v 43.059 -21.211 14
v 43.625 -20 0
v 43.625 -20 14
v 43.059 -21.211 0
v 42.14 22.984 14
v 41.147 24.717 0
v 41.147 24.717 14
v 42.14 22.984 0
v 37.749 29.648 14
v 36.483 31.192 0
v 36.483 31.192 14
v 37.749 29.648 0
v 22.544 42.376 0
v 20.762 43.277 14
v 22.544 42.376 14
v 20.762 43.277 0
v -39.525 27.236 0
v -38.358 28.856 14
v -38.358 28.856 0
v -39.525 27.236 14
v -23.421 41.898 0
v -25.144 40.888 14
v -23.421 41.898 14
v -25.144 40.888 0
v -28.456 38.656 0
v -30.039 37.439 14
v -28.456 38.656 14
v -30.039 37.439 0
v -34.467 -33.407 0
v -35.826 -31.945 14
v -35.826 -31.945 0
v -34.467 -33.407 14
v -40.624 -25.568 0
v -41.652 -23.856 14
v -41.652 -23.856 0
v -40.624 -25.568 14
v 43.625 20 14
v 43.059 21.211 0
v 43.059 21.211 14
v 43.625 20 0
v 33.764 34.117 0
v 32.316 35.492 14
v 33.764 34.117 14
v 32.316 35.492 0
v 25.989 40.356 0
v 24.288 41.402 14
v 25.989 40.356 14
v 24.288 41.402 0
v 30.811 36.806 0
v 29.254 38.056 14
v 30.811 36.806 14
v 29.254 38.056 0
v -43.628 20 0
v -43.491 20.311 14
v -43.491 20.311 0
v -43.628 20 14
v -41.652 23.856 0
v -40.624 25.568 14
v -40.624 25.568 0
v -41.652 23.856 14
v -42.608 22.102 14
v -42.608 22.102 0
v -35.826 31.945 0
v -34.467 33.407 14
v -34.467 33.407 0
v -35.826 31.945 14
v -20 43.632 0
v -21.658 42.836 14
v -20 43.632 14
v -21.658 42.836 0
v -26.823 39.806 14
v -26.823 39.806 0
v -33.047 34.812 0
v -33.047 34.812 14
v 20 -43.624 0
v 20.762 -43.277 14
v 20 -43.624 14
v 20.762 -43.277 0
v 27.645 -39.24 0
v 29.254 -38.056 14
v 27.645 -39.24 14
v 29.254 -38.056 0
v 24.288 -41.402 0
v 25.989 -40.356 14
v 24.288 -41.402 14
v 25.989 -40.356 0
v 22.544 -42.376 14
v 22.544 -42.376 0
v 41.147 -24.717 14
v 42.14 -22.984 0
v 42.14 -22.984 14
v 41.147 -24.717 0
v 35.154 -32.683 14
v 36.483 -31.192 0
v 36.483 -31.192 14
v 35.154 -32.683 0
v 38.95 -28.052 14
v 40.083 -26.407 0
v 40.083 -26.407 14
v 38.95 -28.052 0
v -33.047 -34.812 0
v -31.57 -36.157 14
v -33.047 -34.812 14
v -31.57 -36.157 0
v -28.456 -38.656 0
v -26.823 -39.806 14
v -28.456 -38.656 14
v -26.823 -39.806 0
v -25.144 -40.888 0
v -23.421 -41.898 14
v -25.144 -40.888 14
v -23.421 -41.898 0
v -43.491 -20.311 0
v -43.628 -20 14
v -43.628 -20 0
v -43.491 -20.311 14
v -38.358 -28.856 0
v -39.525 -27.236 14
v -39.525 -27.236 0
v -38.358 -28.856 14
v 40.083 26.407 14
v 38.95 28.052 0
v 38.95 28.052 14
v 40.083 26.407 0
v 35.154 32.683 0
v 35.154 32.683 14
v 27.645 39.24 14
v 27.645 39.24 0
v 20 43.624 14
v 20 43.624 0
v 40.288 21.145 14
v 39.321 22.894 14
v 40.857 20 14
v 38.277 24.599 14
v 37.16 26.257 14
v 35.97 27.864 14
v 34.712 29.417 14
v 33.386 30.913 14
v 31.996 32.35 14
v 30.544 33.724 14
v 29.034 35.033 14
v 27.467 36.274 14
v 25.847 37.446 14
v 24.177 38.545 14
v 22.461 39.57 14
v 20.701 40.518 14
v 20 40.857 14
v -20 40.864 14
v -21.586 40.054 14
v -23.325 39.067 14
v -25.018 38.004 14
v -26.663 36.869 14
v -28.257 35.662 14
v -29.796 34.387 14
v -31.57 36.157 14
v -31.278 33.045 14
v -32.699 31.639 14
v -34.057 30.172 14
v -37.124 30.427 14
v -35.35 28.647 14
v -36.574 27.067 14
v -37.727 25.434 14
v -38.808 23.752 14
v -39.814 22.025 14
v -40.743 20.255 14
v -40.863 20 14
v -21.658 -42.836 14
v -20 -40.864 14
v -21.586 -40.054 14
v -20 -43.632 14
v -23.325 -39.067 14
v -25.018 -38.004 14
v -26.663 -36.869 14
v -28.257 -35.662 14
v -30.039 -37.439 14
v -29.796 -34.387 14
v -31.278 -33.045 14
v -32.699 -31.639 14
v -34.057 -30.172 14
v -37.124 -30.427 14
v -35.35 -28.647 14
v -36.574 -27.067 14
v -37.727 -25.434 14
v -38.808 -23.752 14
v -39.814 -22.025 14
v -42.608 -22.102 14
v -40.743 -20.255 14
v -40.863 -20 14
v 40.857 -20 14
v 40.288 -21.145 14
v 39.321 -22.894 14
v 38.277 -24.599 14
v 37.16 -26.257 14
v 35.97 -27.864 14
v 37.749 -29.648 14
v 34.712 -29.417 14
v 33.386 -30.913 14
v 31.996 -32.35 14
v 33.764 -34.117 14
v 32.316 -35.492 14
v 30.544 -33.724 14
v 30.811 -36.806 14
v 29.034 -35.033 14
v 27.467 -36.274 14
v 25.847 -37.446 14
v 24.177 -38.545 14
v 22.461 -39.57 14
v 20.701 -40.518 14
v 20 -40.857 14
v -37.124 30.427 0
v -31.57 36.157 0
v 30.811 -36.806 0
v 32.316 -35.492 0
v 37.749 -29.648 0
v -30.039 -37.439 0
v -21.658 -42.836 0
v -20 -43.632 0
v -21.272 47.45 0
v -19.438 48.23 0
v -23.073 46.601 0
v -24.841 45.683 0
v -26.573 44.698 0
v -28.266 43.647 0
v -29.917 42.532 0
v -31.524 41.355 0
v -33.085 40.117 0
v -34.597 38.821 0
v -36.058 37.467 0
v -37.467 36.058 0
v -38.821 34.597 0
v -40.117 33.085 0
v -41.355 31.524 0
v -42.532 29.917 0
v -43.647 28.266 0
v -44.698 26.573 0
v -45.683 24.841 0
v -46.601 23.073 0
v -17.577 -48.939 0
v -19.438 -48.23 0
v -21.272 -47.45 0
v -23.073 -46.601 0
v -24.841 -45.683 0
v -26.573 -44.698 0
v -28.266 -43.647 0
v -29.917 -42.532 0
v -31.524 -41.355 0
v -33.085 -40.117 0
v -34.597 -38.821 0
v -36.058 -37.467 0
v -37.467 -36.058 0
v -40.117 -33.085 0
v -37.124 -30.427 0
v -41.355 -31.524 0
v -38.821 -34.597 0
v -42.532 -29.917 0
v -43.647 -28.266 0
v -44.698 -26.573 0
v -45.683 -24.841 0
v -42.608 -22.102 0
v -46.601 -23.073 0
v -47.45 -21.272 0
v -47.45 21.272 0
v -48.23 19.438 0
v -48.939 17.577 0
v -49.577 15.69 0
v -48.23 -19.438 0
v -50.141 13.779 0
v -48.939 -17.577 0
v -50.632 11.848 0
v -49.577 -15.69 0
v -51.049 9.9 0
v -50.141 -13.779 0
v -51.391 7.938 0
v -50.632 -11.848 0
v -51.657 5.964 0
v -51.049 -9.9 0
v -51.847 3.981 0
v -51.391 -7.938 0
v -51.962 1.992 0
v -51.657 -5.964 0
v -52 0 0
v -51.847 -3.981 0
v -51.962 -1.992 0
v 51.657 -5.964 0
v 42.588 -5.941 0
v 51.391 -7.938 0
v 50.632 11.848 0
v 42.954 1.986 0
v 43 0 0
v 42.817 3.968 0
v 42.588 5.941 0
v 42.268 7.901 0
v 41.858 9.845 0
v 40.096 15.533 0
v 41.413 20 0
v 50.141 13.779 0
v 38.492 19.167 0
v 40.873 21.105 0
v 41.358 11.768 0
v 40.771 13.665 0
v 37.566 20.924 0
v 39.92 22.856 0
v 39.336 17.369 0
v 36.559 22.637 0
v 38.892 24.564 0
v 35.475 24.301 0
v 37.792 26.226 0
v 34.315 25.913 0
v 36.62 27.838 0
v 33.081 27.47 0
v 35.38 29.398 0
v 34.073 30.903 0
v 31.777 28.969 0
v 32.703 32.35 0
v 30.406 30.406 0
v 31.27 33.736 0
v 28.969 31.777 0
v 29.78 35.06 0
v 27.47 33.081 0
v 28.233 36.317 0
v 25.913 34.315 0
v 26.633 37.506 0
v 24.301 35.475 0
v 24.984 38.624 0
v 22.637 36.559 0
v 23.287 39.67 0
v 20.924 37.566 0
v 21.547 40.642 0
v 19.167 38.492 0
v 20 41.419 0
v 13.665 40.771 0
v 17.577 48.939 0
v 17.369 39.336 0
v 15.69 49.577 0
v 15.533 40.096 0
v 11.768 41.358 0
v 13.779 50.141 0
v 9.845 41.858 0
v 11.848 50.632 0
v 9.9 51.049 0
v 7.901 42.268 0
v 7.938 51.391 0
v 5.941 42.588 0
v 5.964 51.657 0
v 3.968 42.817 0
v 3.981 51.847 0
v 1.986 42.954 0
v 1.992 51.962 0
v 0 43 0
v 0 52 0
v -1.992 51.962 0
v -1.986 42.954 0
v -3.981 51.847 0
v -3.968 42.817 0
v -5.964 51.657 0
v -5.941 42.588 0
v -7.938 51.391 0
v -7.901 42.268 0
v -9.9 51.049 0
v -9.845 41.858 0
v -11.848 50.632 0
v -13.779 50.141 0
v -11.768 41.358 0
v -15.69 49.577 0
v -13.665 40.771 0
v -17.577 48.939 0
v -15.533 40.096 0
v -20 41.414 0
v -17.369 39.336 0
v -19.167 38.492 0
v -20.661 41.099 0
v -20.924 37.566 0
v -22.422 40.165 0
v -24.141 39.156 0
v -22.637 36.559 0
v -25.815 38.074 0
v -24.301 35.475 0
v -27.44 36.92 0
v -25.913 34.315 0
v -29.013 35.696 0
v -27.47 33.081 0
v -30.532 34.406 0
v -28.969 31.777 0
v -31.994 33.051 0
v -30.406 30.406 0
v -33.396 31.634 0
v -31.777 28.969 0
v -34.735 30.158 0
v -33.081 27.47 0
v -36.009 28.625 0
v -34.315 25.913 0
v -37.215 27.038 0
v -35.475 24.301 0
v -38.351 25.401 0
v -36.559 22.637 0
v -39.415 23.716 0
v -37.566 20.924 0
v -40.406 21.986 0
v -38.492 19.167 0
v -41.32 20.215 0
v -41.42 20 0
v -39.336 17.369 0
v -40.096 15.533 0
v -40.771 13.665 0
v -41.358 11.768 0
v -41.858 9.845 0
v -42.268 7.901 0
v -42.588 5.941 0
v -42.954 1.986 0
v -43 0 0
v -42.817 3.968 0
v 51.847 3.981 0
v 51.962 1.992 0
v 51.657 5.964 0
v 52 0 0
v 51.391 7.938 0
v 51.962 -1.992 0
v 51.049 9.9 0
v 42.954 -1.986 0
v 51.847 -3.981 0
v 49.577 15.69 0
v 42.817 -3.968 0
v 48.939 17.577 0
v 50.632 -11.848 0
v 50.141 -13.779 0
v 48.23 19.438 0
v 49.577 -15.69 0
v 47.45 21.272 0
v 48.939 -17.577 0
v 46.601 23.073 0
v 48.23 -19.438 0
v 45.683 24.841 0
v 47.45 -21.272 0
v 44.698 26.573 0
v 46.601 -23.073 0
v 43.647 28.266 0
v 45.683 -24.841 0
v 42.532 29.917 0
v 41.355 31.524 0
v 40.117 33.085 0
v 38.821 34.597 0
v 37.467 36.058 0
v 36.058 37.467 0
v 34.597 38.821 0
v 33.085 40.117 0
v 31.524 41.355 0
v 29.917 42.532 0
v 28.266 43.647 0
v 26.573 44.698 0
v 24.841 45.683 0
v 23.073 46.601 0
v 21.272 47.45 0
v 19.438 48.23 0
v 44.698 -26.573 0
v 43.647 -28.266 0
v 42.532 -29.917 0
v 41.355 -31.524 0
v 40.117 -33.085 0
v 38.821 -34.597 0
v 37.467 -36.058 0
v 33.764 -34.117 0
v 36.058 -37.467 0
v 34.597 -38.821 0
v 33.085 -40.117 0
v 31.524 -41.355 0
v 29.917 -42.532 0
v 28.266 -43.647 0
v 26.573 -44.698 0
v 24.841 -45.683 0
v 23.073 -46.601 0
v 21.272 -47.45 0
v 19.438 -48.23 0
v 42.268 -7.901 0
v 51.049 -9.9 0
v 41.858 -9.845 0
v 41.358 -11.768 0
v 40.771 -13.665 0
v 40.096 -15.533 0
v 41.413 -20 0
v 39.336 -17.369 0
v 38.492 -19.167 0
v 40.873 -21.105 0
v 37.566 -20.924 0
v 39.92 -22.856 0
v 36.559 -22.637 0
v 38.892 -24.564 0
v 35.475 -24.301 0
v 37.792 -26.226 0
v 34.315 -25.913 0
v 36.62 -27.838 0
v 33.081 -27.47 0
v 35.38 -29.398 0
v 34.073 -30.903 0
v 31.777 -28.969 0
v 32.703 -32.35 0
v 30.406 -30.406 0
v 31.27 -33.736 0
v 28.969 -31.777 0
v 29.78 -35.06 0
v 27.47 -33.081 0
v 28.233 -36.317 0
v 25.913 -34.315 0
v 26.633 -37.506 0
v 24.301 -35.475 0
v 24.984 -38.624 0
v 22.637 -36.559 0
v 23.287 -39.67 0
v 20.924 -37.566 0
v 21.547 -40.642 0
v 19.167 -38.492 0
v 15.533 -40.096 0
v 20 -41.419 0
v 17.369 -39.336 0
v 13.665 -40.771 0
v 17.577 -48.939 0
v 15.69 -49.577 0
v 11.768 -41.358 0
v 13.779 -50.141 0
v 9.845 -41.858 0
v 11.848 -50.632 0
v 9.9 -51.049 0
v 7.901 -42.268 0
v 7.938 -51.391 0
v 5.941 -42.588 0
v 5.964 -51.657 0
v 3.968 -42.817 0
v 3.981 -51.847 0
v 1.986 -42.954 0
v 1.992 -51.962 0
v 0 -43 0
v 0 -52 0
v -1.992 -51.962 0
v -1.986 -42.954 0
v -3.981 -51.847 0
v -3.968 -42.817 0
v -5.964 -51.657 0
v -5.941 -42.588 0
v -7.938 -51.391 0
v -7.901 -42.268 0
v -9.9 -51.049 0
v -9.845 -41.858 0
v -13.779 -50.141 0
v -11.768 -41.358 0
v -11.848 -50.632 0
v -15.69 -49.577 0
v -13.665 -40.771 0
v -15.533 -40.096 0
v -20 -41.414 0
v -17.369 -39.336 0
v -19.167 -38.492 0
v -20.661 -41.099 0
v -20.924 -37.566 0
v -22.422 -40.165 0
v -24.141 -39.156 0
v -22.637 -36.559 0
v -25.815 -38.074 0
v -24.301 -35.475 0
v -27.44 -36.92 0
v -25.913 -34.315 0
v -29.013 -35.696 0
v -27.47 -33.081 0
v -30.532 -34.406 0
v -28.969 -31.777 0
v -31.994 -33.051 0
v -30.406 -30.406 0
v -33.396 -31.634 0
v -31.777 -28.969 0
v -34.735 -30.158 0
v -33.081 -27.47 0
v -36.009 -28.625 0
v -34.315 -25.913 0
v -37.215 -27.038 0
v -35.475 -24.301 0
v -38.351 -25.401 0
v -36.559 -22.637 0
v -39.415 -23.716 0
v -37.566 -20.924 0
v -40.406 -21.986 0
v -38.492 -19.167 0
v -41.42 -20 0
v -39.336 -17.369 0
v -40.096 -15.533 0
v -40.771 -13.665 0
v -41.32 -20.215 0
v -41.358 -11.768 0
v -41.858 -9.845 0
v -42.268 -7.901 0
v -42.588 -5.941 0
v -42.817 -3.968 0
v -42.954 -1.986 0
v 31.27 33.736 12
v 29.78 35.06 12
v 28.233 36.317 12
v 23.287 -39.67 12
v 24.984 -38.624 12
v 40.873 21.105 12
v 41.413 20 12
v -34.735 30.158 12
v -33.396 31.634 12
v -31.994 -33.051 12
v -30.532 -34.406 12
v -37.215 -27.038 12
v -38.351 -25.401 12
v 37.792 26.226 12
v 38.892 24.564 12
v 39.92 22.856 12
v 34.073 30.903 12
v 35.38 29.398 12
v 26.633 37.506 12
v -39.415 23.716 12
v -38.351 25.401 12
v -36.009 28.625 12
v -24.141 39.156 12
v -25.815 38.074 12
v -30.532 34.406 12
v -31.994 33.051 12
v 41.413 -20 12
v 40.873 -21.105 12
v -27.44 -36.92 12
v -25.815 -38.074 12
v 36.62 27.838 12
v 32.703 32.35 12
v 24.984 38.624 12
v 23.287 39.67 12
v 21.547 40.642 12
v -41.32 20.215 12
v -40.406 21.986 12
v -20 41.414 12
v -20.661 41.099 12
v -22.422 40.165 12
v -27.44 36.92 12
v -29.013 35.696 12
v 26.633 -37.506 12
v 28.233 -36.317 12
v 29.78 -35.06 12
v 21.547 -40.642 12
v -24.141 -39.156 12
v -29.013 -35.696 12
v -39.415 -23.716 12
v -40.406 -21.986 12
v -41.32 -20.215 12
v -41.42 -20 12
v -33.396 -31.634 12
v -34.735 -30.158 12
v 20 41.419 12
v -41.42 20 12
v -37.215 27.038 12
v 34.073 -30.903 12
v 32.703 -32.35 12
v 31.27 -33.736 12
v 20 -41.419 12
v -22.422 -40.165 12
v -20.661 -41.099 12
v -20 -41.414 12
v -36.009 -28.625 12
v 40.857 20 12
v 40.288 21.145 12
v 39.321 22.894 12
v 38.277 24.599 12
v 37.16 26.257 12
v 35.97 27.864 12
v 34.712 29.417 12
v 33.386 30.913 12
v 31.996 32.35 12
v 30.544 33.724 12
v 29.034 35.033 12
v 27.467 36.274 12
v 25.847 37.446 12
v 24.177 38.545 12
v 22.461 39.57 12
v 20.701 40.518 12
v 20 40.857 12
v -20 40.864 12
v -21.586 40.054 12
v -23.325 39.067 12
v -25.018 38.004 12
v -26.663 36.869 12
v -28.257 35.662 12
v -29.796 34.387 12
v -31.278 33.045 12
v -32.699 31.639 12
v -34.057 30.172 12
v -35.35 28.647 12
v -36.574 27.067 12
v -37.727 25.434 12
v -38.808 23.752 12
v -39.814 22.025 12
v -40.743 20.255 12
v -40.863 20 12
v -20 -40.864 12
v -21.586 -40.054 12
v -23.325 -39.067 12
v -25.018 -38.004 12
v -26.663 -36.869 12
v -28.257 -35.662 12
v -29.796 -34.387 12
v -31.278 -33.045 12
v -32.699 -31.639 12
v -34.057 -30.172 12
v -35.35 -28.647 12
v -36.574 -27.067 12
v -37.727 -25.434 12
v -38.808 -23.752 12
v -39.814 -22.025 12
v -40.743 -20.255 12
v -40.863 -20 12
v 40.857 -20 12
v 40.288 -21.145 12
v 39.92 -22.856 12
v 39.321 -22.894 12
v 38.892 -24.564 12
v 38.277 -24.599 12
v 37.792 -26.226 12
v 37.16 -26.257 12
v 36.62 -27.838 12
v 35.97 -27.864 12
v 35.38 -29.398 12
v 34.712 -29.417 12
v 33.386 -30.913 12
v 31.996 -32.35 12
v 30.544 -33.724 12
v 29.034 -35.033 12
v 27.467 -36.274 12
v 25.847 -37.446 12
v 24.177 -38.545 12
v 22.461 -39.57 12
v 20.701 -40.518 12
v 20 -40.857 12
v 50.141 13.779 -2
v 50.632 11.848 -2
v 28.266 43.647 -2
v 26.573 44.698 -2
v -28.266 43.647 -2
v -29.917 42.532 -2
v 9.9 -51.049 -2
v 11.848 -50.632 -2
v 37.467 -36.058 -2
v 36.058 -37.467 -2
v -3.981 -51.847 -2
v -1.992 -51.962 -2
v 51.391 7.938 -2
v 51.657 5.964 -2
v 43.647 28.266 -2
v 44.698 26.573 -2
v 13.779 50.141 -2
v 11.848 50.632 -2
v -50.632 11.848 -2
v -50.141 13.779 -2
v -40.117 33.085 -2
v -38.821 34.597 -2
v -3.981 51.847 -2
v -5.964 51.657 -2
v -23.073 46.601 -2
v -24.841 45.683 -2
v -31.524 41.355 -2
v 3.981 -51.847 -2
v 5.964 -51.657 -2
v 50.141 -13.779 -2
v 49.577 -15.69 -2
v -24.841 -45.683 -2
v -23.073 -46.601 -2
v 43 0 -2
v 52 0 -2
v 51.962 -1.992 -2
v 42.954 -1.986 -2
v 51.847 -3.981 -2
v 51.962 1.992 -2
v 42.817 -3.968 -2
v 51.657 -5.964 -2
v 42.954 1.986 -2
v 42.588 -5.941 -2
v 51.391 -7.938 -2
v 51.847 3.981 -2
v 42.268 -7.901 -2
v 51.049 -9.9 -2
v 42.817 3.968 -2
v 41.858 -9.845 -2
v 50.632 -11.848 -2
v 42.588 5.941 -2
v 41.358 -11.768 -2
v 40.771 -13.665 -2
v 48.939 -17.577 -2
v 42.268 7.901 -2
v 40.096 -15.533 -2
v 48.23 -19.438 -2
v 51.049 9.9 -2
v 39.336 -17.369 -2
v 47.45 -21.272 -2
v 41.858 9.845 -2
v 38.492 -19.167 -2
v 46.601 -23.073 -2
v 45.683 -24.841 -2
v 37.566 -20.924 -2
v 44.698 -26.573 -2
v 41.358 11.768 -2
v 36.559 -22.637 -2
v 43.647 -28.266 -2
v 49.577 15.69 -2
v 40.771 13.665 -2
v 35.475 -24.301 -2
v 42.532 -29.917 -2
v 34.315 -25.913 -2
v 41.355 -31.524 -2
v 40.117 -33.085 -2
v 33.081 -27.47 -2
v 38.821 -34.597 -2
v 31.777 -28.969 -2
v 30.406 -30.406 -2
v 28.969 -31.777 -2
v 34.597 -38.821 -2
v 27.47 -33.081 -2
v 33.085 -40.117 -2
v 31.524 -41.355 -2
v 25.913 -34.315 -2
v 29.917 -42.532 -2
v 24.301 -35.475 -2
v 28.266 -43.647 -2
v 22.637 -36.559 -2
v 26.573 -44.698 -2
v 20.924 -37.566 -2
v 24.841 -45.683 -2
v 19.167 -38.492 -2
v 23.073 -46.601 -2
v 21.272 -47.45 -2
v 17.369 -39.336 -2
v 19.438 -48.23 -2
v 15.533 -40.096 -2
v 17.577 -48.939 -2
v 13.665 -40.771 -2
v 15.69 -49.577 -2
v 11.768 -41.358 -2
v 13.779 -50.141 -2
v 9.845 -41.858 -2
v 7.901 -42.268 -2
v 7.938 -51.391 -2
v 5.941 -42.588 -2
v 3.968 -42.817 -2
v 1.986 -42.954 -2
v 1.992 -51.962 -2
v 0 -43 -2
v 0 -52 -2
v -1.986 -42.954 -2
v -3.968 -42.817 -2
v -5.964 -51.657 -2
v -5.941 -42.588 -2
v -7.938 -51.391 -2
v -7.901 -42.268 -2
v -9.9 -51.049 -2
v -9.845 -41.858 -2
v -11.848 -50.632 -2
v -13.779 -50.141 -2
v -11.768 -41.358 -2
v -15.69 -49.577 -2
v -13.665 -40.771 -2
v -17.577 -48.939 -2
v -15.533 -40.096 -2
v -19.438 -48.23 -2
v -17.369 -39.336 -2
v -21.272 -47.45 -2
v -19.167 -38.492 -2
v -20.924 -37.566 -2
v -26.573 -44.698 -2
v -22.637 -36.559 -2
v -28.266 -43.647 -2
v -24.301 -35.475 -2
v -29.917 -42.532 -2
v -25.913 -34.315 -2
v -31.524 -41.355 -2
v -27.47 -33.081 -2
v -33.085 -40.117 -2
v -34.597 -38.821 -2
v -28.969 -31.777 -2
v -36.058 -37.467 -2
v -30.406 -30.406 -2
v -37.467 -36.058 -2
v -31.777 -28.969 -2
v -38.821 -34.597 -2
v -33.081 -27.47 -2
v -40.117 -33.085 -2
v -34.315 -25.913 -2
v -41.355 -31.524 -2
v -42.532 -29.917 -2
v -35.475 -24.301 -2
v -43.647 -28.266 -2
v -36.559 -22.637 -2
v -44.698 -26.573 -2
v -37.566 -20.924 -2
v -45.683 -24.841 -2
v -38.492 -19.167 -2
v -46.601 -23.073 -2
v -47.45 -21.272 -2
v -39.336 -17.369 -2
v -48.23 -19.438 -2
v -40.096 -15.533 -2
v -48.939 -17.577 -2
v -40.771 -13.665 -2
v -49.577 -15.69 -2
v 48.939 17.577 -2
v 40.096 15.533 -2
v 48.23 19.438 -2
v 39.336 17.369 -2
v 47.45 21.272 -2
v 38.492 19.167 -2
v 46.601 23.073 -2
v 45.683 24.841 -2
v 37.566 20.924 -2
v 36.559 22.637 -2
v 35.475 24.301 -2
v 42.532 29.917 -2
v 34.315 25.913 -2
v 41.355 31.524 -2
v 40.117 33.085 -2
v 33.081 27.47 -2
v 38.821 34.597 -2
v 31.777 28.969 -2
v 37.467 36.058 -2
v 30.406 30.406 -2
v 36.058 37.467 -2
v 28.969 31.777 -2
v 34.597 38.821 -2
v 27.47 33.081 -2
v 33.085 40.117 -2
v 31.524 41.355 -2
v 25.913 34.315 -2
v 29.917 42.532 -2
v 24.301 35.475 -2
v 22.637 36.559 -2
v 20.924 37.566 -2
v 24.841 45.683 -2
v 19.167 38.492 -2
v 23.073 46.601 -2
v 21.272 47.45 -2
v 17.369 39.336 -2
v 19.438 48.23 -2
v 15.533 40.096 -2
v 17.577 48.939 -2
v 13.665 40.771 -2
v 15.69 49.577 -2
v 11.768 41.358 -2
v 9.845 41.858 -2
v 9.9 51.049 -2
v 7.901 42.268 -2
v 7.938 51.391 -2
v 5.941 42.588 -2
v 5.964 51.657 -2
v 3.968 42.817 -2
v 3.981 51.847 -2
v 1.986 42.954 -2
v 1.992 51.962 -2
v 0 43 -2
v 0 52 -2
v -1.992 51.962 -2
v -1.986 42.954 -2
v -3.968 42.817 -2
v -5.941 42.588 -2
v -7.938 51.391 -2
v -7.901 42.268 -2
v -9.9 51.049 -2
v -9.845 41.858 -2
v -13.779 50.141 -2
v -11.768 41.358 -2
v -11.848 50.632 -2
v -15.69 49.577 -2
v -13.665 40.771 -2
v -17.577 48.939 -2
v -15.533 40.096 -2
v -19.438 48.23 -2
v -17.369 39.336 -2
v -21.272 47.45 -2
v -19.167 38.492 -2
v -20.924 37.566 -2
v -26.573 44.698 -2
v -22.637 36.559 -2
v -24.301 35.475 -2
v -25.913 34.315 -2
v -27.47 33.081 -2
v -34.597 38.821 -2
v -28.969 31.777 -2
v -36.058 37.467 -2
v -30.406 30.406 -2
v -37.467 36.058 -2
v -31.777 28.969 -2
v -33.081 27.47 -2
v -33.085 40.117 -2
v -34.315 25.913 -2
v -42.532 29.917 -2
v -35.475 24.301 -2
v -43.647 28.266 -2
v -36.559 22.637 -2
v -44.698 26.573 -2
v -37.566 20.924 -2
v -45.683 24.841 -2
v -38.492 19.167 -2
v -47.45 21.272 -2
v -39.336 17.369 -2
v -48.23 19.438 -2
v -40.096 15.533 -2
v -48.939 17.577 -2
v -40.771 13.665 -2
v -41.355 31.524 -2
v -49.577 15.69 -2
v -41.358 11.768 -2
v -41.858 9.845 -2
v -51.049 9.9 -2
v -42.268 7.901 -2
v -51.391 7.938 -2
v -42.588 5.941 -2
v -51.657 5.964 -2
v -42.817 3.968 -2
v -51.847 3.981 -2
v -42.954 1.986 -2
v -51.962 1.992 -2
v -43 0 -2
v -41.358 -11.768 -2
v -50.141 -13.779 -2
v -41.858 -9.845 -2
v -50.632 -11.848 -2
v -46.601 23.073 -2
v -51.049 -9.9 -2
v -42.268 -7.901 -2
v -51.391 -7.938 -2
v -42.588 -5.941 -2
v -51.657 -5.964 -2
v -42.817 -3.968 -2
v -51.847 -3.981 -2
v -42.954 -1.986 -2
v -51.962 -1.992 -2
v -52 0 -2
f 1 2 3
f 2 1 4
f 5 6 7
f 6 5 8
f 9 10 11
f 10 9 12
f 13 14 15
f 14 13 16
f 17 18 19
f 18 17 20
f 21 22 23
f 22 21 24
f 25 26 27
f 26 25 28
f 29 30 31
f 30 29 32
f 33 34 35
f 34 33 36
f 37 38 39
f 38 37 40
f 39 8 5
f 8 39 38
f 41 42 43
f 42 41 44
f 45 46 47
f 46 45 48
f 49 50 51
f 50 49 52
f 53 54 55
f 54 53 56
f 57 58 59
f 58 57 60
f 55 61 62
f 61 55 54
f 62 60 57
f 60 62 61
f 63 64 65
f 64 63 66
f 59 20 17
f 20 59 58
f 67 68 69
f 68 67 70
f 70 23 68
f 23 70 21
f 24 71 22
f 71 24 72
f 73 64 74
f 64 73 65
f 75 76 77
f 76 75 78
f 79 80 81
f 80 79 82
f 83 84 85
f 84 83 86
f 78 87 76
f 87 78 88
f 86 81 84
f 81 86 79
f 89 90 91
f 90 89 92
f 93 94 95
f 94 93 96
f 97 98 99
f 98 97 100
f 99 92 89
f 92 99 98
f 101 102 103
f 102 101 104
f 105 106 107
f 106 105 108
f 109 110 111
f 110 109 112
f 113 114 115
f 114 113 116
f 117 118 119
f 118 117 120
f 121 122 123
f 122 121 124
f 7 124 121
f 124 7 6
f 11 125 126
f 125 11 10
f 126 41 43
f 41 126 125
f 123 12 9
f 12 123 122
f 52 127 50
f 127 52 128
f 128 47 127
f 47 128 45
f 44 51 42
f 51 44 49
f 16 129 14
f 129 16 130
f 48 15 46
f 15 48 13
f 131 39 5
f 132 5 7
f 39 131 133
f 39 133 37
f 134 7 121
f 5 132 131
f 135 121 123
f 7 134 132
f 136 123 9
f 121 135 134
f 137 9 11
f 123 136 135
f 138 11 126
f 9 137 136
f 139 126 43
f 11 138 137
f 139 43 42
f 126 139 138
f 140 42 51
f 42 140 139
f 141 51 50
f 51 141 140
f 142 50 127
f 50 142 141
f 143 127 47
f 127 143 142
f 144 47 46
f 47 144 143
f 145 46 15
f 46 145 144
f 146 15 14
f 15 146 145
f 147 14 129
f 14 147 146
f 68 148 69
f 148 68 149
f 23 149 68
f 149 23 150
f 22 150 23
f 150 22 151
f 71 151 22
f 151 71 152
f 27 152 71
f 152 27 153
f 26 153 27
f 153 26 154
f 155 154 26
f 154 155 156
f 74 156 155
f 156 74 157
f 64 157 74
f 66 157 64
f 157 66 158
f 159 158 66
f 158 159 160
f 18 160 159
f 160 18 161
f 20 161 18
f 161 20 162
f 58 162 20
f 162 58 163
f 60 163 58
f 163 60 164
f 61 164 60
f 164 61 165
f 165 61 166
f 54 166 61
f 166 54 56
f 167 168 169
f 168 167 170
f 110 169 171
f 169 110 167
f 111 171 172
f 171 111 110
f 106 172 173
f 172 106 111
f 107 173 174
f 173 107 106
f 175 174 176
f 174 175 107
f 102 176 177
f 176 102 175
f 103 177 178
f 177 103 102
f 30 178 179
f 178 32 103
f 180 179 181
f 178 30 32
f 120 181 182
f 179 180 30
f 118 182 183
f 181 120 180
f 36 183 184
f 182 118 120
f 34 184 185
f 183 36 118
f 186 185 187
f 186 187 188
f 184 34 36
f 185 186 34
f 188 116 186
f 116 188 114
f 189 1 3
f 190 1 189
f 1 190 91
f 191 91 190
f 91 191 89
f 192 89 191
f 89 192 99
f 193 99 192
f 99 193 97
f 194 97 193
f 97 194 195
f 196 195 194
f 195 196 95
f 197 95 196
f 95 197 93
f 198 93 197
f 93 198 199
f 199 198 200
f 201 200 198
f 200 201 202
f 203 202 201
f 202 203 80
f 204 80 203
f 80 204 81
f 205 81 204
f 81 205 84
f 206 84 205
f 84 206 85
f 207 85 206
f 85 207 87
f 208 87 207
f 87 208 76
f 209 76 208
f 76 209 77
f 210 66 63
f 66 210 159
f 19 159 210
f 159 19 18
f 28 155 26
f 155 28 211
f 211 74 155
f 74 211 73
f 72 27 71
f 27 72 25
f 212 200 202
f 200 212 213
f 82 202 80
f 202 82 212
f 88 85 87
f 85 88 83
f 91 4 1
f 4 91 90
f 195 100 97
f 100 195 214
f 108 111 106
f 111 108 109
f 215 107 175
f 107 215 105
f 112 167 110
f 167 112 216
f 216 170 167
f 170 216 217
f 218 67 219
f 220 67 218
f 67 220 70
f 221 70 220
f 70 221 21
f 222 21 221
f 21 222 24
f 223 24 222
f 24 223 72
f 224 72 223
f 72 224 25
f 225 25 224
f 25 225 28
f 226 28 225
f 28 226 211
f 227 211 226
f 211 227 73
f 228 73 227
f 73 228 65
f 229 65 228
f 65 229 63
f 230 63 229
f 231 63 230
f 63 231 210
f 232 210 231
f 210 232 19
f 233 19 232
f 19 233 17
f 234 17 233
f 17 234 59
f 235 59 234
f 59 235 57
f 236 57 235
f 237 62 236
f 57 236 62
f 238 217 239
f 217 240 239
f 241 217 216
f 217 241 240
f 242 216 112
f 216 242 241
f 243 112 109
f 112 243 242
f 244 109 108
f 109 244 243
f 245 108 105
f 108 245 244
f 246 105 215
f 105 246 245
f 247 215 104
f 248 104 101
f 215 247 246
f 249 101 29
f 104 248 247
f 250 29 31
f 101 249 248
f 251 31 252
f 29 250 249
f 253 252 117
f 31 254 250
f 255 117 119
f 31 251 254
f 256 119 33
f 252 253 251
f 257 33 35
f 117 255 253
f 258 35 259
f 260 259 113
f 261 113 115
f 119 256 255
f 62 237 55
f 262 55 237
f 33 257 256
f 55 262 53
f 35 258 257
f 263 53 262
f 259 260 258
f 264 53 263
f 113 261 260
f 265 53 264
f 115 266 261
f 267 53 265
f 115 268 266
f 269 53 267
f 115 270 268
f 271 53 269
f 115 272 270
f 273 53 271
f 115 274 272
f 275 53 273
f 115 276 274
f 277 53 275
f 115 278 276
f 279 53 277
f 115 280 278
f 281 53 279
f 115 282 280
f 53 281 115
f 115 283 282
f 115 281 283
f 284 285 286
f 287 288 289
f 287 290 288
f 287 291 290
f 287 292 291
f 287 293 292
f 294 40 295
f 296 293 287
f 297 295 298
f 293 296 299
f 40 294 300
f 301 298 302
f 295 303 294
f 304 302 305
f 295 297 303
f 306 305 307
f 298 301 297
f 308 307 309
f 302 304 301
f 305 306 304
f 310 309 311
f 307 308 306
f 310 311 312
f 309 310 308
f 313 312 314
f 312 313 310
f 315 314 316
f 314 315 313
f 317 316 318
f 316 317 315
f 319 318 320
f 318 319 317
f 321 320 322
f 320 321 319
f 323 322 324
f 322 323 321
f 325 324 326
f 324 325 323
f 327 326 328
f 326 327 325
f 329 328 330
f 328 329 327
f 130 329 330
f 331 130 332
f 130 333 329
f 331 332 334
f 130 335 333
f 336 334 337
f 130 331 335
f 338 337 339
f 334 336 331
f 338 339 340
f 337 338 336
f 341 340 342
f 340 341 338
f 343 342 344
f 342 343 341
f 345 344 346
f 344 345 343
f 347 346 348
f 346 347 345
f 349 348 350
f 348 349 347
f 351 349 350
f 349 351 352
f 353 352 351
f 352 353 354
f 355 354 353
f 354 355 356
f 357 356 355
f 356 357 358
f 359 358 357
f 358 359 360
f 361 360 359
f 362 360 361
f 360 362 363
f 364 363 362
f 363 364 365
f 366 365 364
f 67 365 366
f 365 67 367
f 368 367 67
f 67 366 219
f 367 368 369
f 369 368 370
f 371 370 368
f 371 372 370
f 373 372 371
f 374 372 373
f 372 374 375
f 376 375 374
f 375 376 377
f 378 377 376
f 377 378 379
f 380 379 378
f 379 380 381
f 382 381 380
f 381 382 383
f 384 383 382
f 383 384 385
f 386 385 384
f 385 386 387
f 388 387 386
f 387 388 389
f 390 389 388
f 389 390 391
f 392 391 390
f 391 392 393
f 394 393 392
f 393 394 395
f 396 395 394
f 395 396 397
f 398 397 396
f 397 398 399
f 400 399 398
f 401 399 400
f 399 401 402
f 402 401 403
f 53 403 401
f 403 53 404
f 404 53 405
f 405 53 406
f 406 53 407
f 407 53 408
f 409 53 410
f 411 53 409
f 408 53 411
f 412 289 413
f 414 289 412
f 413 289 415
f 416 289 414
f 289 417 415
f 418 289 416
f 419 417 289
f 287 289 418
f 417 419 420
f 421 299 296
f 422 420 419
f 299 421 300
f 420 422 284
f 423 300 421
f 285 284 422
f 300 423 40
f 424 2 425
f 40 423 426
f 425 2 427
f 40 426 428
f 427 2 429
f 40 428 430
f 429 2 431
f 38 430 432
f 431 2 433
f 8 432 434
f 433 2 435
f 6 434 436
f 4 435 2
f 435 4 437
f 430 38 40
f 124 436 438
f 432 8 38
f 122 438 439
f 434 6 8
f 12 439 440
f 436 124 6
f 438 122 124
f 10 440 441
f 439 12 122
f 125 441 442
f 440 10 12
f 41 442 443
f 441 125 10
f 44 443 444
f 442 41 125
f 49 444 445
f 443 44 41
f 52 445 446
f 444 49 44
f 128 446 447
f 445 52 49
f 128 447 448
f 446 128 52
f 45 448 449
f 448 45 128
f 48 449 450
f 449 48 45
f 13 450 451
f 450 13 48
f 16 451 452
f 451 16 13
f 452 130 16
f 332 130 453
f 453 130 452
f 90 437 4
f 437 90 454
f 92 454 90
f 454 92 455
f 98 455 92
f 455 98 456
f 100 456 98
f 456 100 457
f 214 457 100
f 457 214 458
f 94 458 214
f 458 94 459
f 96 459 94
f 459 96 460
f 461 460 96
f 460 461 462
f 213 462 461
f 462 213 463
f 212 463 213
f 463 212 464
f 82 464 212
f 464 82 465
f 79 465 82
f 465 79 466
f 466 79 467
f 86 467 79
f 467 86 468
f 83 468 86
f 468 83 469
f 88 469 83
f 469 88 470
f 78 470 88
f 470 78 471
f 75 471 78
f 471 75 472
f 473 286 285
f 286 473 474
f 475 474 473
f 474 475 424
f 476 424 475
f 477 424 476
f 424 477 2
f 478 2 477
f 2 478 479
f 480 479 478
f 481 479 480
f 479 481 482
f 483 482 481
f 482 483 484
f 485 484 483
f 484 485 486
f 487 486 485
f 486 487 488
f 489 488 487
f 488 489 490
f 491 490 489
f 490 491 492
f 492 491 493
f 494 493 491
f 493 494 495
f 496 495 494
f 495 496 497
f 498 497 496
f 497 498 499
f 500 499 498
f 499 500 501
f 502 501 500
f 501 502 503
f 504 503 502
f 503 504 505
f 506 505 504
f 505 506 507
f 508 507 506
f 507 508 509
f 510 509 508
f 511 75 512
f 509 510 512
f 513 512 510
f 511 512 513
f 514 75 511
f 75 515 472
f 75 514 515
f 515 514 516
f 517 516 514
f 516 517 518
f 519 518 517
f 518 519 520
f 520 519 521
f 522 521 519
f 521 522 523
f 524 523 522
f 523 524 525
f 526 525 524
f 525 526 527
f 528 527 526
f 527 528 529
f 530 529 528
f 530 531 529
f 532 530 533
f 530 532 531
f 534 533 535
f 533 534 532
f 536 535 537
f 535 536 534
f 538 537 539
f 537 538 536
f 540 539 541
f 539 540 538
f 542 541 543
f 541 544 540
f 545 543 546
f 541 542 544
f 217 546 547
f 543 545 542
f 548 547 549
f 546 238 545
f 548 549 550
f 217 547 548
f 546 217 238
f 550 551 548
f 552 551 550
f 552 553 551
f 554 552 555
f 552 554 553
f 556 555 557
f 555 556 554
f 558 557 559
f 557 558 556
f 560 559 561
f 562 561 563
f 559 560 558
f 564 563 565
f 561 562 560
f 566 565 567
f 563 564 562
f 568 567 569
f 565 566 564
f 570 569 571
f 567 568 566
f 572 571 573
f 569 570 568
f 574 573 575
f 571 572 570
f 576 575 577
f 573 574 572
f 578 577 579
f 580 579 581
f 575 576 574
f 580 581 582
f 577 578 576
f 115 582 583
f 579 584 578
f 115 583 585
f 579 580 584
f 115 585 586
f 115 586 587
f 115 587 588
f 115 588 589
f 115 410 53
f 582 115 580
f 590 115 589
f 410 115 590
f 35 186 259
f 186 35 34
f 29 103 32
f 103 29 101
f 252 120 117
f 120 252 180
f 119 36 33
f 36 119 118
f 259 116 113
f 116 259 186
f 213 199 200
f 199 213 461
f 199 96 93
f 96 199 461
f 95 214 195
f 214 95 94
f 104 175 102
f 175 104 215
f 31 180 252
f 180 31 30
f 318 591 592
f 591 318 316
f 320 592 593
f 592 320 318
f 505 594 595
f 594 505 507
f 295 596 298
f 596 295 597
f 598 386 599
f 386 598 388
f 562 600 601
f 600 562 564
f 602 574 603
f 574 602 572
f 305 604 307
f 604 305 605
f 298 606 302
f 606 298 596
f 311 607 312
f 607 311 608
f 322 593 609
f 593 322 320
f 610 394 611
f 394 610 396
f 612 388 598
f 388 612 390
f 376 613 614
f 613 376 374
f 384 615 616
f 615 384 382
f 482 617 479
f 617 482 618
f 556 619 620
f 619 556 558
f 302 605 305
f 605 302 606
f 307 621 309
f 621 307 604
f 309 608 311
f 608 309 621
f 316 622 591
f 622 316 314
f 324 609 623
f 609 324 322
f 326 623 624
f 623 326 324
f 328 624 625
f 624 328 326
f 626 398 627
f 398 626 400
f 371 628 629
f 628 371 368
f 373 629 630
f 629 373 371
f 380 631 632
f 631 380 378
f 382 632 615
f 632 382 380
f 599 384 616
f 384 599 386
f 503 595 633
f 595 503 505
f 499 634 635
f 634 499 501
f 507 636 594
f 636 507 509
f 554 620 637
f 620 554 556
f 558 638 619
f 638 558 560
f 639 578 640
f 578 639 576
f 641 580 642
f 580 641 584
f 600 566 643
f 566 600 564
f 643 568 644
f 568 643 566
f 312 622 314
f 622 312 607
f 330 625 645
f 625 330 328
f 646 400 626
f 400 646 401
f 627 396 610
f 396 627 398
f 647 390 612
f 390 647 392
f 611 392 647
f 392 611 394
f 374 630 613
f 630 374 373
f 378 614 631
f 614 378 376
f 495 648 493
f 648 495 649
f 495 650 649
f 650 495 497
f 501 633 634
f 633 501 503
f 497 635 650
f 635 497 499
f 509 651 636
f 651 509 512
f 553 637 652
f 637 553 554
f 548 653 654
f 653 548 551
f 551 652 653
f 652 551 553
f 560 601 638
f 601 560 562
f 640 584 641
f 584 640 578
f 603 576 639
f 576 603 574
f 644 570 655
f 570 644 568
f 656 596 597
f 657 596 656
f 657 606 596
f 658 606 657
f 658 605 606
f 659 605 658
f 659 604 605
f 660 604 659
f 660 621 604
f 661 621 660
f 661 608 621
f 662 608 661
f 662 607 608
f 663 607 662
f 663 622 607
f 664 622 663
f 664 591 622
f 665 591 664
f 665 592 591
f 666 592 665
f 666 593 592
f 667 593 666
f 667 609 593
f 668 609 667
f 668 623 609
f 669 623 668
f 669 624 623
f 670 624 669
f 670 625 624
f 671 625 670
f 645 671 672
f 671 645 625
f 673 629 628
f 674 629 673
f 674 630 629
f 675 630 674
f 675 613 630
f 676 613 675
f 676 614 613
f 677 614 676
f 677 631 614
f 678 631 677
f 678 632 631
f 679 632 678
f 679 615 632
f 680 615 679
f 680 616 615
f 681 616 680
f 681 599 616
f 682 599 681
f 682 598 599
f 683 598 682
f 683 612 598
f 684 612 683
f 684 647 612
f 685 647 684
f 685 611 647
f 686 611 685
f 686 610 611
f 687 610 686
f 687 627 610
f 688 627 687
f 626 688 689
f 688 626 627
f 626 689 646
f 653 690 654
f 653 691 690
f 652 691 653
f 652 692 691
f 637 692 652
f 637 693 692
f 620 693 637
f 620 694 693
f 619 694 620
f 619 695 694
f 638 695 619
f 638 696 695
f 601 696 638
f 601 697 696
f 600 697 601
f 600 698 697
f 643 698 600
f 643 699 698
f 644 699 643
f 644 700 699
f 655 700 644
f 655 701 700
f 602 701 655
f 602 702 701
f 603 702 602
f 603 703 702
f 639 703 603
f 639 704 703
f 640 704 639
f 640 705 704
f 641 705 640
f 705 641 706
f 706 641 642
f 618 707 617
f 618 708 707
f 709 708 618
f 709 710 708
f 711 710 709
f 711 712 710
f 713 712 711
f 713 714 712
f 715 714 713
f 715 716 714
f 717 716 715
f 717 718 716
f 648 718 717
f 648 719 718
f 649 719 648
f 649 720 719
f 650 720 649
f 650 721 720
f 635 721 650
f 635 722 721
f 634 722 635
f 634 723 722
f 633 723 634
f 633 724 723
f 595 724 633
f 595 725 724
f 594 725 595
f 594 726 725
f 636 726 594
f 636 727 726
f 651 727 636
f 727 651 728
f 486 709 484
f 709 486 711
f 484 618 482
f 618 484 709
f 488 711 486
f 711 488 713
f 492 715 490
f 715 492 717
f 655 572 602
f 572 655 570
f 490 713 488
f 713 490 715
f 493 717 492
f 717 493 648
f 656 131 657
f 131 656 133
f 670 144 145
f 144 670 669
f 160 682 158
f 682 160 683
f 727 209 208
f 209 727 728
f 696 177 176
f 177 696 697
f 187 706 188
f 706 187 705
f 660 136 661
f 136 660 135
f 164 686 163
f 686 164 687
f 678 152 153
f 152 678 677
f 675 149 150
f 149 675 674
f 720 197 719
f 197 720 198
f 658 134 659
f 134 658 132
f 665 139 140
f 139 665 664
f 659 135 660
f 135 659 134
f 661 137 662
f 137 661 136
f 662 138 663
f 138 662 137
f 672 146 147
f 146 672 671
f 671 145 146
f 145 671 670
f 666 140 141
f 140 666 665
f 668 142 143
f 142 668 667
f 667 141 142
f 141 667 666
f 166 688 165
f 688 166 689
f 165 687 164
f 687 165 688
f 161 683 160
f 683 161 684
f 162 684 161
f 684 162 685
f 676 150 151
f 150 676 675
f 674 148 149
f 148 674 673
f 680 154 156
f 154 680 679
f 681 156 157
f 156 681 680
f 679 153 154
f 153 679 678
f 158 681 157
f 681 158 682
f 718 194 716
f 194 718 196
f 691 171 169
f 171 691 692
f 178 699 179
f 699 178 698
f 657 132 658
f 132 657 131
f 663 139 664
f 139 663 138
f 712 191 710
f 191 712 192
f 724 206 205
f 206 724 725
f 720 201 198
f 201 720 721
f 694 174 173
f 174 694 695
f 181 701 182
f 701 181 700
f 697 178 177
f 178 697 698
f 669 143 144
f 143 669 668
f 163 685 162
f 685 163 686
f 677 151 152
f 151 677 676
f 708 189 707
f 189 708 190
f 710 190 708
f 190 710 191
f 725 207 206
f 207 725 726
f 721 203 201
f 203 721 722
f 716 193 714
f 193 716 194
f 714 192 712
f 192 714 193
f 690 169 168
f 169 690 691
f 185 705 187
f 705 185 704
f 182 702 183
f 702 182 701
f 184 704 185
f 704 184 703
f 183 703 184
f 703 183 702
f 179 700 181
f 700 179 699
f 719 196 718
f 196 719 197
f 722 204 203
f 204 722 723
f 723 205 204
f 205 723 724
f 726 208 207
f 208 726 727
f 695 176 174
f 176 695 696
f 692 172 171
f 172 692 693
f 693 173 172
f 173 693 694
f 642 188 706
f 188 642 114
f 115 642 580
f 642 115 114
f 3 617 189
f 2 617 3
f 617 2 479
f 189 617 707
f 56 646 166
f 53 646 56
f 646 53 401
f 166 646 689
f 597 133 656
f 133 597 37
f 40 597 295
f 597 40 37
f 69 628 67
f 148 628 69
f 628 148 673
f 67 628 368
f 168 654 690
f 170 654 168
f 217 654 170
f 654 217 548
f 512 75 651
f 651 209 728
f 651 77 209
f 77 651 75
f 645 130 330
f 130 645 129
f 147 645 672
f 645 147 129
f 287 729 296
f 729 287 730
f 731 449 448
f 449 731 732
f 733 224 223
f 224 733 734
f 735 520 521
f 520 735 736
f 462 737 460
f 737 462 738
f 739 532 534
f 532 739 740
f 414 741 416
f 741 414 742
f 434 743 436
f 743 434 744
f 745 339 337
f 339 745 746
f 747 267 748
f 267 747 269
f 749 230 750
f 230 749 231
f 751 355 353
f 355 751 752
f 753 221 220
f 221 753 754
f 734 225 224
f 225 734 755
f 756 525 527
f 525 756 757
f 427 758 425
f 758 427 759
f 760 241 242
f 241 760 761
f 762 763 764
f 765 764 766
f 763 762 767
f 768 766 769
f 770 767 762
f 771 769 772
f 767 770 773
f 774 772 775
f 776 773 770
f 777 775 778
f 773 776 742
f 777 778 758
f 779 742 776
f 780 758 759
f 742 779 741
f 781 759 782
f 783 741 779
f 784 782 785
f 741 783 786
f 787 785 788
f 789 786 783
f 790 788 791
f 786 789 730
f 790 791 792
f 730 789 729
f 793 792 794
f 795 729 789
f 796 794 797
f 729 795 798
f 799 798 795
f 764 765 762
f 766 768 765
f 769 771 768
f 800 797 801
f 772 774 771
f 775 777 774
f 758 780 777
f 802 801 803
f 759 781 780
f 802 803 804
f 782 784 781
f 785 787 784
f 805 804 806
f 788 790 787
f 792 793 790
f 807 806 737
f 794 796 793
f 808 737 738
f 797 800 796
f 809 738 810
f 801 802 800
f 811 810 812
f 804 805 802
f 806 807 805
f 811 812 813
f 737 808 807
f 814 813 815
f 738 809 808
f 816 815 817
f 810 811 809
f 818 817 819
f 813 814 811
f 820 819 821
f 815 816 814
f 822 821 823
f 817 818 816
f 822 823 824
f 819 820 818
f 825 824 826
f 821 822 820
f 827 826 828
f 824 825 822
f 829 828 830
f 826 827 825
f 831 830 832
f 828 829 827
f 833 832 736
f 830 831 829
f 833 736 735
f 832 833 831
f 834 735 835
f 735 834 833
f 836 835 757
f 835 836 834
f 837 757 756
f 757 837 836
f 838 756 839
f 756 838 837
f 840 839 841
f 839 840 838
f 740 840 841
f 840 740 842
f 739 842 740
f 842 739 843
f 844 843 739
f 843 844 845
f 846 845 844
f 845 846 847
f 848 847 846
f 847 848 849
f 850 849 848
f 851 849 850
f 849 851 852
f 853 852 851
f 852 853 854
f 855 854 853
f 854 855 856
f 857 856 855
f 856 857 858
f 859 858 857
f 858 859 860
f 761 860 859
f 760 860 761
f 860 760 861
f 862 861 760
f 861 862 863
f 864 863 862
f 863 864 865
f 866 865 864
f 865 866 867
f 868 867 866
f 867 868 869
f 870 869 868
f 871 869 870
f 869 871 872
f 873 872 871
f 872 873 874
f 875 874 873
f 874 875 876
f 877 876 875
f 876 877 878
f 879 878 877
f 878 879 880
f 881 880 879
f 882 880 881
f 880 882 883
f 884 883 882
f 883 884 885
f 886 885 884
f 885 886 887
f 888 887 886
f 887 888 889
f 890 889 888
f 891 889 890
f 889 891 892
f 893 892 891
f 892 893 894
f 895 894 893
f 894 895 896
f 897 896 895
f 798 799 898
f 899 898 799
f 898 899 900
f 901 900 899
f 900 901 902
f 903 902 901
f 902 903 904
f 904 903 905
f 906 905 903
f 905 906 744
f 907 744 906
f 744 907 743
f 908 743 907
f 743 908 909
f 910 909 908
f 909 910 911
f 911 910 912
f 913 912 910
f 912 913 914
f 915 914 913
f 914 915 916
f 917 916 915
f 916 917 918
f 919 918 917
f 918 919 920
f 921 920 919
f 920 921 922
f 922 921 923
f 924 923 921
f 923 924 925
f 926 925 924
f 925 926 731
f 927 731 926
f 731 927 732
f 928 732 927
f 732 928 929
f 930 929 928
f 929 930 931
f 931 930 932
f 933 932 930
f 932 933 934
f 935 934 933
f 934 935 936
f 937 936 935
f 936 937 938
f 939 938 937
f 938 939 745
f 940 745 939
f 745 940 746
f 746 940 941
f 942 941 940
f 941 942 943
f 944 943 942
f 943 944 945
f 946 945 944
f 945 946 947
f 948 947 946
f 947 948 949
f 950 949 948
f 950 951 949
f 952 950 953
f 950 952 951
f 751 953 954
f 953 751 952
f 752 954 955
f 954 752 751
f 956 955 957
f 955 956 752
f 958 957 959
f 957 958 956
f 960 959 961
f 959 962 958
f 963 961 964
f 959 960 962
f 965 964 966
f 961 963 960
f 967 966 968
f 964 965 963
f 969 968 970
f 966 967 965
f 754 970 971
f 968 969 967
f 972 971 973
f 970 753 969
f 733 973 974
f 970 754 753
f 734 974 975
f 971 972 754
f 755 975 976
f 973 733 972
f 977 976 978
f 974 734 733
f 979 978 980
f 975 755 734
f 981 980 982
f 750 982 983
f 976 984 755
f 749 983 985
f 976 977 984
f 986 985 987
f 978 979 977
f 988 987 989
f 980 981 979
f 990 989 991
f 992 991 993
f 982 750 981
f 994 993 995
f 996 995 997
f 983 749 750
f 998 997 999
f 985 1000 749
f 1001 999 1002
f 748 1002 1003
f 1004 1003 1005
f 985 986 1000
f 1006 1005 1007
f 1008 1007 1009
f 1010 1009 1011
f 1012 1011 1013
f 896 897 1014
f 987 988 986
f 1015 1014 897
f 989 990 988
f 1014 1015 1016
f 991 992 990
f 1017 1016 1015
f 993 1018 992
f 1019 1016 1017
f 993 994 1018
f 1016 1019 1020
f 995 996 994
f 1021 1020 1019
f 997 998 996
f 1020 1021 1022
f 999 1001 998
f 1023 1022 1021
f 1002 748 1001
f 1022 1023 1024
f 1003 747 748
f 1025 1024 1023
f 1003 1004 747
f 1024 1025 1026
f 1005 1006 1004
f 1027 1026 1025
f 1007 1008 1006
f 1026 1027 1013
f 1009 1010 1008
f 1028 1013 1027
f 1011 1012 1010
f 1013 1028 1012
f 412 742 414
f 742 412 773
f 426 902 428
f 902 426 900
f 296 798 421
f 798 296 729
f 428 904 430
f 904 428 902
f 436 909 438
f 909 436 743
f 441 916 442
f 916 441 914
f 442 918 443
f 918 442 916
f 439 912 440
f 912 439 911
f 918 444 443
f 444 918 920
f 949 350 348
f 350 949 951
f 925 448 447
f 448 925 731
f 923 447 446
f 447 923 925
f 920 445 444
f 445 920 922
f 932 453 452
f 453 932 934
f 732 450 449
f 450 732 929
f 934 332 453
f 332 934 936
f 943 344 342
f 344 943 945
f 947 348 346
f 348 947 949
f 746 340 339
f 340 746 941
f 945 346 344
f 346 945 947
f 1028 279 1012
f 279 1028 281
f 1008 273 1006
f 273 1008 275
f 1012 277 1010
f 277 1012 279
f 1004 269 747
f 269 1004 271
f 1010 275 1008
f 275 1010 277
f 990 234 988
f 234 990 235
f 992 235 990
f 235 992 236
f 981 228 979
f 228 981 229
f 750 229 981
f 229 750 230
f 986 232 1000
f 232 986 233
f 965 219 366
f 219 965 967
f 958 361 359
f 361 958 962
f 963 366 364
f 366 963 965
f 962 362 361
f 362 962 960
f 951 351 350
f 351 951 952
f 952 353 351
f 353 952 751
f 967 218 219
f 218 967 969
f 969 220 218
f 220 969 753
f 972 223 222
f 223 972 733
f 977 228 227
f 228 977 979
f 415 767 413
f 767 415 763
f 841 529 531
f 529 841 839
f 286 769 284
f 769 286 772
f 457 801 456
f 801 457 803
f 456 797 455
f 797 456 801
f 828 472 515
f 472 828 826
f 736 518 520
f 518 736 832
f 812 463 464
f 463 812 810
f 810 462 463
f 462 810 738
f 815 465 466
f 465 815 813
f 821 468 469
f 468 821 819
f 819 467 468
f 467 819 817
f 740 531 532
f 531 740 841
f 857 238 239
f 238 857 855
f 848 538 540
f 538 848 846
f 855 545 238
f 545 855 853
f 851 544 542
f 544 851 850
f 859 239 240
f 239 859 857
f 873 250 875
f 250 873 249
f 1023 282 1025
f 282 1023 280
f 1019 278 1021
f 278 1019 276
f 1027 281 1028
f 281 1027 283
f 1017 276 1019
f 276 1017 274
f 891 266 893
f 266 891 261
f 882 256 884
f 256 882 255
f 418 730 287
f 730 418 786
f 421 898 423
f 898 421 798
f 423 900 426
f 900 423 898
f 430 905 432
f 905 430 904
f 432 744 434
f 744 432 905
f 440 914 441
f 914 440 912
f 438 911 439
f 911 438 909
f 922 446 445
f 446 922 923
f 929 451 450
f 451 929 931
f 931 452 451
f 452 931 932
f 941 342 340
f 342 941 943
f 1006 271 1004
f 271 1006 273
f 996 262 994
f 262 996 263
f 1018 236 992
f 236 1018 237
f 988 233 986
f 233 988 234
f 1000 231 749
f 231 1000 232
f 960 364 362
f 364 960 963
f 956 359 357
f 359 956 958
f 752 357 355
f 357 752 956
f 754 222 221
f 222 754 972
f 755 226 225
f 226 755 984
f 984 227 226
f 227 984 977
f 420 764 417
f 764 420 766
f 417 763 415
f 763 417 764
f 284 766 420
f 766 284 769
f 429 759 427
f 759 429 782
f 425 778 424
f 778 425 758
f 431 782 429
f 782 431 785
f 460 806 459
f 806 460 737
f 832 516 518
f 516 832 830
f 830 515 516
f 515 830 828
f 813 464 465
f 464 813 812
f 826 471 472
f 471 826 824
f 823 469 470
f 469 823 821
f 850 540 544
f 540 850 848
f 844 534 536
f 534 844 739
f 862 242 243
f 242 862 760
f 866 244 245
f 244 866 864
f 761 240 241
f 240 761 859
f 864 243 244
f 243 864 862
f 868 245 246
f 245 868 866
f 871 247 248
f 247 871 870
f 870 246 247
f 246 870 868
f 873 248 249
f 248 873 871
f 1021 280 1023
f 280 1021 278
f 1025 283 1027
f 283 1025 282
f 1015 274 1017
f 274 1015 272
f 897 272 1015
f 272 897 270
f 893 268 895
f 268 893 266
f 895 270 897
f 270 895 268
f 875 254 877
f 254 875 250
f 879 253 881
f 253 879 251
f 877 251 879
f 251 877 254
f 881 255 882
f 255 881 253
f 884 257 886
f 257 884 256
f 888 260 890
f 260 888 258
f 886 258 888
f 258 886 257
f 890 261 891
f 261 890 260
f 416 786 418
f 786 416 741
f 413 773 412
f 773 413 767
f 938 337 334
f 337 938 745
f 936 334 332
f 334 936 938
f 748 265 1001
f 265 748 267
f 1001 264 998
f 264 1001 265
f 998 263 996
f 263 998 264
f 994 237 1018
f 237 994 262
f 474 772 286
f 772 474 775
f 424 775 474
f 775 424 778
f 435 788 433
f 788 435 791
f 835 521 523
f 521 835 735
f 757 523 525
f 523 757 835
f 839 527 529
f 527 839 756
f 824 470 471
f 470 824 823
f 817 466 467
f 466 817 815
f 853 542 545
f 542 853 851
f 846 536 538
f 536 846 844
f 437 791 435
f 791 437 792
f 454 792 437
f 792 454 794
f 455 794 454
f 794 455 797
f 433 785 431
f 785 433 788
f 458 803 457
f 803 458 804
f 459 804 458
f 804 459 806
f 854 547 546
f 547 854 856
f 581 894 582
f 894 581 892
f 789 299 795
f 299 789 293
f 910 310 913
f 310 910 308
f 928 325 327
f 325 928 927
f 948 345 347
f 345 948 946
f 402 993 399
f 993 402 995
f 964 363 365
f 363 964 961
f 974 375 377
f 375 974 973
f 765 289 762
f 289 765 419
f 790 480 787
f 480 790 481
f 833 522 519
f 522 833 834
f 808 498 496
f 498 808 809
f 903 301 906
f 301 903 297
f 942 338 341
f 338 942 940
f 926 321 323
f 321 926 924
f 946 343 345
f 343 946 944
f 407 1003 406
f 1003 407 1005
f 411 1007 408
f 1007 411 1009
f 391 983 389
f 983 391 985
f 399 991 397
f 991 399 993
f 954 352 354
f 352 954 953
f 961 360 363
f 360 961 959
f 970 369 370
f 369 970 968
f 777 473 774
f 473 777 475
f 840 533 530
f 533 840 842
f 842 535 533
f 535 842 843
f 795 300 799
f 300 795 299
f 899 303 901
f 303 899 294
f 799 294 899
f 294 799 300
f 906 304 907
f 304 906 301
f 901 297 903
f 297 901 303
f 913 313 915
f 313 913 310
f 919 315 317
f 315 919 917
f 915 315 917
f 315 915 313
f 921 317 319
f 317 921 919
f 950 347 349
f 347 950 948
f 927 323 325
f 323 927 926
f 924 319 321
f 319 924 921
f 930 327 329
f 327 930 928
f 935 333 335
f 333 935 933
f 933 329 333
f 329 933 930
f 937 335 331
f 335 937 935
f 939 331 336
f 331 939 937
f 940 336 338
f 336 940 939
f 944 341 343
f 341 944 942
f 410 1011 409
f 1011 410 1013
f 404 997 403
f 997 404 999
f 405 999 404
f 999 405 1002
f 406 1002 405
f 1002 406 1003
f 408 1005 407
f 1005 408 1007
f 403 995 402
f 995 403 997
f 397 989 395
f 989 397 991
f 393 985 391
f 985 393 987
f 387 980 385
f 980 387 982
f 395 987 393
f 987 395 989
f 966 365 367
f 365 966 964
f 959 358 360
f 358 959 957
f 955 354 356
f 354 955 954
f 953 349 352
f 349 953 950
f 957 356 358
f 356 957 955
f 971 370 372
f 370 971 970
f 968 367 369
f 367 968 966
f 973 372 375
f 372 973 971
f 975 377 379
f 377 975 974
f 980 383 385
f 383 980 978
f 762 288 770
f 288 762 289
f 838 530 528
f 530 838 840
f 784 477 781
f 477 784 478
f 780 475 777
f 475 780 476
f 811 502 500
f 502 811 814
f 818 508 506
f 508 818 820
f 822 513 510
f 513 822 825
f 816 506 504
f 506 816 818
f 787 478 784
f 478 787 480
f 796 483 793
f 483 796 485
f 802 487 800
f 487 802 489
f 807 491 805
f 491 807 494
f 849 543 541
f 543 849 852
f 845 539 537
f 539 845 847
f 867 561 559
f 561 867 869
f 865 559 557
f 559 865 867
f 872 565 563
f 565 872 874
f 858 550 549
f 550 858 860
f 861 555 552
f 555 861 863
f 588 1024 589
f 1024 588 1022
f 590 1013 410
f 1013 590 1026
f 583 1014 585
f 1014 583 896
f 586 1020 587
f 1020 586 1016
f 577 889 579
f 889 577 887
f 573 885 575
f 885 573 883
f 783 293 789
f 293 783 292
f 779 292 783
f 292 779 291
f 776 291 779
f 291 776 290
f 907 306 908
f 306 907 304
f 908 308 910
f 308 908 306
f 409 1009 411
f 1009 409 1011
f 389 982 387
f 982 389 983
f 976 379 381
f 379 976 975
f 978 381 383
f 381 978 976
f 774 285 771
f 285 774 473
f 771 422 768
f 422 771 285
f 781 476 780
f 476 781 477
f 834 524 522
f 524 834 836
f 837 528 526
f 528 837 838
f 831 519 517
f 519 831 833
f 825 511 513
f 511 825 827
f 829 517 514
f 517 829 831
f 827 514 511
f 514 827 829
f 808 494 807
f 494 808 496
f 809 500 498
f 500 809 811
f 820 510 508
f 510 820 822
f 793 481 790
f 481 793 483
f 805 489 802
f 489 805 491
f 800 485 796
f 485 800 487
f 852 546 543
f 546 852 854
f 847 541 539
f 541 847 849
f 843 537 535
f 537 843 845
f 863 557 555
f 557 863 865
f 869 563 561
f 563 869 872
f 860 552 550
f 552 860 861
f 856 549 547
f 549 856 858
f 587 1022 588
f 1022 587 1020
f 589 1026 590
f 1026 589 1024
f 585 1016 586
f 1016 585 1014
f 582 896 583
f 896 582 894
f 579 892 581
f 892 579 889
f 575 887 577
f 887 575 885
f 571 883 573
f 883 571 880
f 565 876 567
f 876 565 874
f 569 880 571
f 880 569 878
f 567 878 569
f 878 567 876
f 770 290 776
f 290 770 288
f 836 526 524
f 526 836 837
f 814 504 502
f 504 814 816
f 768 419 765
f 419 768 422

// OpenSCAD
$fa=0.2;
$fn=0;

difference()
{
  cylinder(r=48,h=14);
  cylinder(r=46,h=12);
  cylinder(r=45.5,h=14);
  translate([-50,-20,0]) cube([100,40,14]);
  translate([-20,-50,0]) cube([40,100,14]);
}
translate([0,0,-2]) 
  difference()
  {
    cylinder(r=52,h=2);
    cylinder(r=43,h=2);
  }
